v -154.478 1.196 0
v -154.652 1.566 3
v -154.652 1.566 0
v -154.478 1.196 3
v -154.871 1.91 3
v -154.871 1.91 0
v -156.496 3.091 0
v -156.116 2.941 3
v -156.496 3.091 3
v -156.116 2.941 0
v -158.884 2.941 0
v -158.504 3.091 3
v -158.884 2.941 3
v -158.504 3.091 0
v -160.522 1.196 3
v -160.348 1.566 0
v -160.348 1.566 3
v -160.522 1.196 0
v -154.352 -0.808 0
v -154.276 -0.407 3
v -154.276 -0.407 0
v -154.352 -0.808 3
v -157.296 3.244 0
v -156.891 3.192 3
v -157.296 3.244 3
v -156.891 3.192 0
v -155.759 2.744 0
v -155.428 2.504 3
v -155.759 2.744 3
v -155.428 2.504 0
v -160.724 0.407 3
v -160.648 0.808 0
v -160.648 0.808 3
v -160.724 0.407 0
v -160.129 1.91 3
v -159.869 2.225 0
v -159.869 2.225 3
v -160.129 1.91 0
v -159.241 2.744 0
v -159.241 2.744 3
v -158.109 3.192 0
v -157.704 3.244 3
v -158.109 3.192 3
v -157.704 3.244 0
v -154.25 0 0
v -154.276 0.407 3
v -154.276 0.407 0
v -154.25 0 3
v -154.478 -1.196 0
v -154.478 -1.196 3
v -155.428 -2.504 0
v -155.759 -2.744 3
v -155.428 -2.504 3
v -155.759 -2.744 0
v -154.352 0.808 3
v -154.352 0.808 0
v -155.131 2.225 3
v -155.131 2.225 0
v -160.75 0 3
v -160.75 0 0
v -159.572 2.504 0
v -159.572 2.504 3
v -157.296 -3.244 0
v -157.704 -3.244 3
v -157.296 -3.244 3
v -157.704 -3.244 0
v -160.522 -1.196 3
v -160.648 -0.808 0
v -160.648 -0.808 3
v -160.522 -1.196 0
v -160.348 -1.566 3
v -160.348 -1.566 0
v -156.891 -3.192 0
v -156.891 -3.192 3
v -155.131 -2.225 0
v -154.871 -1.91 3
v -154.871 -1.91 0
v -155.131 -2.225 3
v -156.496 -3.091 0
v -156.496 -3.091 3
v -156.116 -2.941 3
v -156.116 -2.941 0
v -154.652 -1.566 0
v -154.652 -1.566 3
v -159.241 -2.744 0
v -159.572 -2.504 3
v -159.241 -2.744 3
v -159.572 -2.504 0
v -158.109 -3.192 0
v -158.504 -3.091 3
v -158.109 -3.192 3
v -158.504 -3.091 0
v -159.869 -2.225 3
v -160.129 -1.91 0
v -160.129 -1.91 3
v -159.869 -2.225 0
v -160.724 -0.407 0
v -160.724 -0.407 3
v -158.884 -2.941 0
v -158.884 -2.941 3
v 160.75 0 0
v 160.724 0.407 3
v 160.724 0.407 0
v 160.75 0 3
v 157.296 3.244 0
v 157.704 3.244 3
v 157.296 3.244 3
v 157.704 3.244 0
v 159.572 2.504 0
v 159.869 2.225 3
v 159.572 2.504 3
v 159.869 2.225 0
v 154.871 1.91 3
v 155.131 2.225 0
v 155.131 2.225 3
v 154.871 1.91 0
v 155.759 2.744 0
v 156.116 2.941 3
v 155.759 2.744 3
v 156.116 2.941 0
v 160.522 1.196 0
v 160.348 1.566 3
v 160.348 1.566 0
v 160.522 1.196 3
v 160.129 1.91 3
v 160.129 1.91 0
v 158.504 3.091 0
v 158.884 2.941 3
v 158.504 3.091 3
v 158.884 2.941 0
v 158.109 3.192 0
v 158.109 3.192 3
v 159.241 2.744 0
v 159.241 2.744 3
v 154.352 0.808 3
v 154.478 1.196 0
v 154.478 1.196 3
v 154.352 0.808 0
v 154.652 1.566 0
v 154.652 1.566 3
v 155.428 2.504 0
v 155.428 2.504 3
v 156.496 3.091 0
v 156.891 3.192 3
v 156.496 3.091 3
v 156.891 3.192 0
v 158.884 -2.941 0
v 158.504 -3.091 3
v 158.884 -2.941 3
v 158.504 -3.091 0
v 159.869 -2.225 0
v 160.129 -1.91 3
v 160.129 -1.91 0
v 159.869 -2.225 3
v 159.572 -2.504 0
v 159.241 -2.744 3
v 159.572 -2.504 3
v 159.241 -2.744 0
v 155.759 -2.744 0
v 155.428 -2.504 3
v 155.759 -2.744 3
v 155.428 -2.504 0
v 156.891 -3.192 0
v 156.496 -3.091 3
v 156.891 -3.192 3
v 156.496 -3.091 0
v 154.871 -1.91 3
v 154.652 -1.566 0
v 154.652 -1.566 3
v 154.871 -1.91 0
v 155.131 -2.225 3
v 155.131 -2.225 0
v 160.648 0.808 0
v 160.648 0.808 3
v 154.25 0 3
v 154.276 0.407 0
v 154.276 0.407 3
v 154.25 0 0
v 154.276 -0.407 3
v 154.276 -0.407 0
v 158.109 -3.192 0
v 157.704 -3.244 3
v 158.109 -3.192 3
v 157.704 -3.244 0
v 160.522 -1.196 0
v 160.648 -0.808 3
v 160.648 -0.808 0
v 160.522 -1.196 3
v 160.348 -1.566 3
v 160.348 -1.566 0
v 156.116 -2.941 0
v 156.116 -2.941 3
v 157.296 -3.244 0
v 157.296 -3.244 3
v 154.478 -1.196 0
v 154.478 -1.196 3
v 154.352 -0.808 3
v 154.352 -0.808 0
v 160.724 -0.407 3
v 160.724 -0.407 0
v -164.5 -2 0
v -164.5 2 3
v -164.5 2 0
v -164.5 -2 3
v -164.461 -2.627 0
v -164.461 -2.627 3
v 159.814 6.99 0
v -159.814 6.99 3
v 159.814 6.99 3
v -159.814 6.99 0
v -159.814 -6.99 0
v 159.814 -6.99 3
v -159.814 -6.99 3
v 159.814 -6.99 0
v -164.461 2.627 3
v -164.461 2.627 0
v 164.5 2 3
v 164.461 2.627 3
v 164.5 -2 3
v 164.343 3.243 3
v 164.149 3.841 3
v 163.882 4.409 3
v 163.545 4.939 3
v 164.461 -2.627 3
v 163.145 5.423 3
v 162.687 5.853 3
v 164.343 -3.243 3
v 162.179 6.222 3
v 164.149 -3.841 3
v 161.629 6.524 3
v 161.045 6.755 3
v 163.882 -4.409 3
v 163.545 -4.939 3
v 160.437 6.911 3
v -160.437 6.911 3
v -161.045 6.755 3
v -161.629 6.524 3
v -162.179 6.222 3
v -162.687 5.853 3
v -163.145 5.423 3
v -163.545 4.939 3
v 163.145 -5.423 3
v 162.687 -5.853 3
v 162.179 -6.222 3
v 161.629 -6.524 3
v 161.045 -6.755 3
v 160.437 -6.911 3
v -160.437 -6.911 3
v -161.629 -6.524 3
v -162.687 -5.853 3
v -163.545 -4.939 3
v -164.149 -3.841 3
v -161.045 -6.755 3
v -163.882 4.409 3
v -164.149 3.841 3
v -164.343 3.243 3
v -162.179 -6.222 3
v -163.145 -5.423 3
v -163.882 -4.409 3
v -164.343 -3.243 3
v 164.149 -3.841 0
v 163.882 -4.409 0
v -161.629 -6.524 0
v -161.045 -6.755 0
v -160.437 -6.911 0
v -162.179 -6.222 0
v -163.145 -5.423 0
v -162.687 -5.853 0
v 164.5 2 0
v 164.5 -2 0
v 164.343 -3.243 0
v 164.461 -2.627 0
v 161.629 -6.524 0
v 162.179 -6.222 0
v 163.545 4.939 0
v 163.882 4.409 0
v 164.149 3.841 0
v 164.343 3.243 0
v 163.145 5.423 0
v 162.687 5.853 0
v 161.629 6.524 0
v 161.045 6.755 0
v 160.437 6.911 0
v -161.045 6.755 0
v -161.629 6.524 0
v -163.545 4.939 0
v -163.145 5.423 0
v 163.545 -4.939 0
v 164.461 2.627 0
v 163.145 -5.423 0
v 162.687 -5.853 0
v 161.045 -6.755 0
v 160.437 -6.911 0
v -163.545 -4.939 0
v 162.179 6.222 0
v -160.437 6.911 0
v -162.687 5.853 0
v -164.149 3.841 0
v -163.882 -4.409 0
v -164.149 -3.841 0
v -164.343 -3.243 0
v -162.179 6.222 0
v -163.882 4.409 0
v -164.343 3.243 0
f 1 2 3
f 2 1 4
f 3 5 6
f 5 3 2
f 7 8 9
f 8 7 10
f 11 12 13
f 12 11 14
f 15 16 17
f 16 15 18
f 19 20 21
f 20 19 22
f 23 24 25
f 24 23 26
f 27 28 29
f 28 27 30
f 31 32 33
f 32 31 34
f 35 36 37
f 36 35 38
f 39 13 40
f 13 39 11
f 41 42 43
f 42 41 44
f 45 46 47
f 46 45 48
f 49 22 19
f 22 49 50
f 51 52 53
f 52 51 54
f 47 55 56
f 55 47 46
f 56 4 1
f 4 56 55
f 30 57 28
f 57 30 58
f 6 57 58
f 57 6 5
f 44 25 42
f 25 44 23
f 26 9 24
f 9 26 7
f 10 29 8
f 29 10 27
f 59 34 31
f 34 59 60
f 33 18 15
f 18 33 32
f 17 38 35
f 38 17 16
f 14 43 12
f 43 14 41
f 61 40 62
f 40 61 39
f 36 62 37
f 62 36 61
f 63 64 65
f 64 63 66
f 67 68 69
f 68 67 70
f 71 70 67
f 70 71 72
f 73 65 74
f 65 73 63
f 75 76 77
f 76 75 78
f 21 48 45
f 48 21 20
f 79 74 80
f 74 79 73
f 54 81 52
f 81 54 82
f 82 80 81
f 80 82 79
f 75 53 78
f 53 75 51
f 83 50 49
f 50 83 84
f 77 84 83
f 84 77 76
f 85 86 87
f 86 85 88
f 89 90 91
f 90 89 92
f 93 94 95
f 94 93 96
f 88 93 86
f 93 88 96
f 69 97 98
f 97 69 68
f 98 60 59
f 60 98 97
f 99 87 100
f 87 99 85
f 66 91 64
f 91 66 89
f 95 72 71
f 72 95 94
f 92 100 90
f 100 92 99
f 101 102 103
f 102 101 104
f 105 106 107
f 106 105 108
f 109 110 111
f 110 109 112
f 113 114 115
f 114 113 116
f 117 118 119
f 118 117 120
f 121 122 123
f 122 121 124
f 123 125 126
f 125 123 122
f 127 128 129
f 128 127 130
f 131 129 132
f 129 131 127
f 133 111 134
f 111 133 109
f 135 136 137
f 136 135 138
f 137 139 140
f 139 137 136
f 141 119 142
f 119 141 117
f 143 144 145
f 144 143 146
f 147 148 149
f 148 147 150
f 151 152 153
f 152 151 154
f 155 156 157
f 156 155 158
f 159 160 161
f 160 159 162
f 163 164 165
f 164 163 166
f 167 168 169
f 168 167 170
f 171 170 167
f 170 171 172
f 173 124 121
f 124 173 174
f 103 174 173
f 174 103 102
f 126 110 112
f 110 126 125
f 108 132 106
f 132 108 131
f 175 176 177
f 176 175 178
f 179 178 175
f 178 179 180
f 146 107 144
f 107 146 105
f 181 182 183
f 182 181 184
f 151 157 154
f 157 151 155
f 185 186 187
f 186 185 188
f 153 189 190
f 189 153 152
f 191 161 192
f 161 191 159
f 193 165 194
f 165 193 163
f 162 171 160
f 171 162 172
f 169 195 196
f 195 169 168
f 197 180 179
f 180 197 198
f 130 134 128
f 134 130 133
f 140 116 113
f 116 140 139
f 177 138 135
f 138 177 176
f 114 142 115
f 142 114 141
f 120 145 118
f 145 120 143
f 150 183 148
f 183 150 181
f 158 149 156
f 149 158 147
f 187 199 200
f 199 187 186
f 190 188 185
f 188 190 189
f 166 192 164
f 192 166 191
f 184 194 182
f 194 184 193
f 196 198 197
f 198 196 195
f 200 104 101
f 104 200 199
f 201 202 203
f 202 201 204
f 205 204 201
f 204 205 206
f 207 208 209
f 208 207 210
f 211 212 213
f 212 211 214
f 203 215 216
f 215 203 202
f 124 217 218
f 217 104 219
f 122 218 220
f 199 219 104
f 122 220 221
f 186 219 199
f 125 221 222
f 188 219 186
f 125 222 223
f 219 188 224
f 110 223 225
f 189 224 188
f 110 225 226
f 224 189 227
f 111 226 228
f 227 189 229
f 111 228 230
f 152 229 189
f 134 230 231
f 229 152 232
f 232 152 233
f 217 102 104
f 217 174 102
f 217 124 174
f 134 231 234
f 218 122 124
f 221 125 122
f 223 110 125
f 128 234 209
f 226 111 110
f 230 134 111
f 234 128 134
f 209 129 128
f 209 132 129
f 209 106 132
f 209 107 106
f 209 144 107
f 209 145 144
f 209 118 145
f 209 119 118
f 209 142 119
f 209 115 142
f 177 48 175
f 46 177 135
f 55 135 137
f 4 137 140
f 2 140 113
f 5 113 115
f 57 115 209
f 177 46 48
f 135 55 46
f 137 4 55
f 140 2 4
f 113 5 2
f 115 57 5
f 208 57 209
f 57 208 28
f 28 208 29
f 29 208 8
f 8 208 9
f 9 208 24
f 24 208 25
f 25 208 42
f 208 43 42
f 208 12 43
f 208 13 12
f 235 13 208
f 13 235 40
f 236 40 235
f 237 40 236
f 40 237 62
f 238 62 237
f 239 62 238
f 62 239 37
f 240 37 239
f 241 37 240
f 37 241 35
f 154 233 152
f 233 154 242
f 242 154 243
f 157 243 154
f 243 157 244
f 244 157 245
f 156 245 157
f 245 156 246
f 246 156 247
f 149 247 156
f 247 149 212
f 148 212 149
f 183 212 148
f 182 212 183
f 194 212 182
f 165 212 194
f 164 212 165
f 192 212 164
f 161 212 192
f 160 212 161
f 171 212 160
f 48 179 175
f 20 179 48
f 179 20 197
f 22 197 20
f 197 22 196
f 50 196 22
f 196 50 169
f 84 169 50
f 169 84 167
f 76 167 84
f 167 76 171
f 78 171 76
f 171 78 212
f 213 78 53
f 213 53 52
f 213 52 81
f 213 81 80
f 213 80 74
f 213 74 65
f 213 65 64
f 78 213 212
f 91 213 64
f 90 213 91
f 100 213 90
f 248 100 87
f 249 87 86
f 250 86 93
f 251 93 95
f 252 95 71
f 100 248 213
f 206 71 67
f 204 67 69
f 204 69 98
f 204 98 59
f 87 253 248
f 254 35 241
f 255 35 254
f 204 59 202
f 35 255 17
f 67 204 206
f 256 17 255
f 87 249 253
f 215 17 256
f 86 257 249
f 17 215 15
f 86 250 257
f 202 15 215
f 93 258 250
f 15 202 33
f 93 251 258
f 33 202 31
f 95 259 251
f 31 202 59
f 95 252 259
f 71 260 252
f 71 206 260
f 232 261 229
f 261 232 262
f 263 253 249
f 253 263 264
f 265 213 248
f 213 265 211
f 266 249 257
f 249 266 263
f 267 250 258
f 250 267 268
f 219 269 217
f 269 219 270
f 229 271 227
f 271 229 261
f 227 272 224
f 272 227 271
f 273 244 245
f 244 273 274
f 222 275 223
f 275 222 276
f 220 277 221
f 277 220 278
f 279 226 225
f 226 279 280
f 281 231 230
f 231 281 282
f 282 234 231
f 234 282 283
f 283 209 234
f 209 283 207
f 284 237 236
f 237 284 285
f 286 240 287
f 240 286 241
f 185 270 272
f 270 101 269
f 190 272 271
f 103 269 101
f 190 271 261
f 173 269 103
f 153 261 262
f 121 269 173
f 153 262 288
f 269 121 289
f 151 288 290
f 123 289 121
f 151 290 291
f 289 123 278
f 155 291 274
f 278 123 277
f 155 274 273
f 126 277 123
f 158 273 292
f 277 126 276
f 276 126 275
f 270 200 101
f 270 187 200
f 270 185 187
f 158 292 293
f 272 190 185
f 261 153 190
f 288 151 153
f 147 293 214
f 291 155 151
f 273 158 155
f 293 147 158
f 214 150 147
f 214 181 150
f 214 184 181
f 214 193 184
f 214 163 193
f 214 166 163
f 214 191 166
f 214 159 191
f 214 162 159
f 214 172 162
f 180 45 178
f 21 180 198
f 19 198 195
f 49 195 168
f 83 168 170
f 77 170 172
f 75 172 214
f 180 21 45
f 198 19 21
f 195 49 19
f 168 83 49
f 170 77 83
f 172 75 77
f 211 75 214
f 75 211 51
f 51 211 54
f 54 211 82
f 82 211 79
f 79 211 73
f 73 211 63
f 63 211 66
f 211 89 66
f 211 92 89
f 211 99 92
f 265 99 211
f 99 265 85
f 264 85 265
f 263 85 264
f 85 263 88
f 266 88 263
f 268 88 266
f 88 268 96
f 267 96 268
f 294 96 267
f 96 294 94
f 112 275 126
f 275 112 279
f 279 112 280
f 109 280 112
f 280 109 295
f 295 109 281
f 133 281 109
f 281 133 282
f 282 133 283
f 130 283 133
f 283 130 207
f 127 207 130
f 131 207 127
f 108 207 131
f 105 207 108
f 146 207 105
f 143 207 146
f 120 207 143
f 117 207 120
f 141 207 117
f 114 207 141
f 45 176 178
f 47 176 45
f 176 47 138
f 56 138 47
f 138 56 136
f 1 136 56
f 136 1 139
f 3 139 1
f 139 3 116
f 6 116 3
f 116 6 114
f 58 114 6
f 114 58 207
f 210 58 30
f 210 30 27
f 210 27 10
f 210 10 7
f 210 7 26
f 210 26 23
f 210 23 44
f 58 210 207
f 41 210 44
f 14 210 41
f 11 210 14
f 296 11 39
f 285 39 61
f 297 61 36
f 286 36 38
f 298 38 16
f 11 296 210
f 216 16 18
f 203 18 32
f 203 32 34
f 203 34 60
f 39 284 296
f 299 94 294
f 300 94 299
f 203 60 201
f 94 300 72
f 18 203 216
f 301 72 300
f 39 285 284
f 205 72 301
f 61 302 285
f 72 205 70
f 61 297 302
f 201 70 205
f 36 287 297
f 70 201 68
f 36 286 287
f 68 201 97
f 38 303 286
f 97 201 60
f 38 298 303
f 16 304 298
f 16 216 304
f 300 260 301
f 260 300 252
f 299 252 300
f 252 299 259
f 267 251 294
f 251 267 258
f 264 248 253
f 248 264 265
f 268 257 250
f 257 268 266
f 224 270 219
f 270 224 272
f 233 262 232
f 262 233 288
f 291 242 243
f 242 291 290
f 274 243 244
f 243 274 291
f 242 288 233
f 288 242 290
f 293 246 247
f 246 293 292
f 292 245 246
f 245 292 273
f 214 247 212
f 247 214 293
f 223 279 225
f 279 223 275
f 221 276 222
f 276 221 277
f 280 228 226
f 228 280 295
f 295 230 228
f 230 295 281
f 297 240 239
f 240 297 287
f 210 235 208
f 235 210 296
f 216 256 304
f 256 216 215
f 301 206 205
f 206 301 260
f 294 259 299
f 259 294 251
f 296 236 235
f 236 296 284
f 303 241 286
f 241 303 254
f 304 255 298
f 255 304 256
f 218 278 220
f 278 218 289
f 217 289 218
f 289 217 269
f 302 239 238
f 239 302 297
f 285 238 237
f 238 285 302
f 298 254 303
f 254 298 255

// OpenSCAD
$fn = 50;


difference() {
	union() {
		hull() {
			translate(v = [-159.5000000000, 2.0000000000, 0]) {
				cylinder(h = 3, r = 5);
			}
			translate(v = [159.5000000000, 2.0000000000, 0]) {
				cylinder(h = 3, r = 5);
			}
			translate(v = [-159.5000000000, -2.0000000000, 0]) {
				cylinder(h = 3, r = 5);
			}
			translate(v = [159.5000000000, -2.0000000000, 0]) {
				cylinder(h = 3, r = 5);
			}
		}
	}
	union() {
		translate(v = [-157.5000000000, 0.0000000000, -100.0000000000]) {
			cylinder(h = 200, r = 3.2500000000);
		}
		translate(v = [-157.5000000000, 0.0000000000, -100.0000000000]) {
			cylinder(h = 200, r = 3.2500000000);
		}
		translate(v = [157.5000000000, 0.0000000000, -100.0000000000]) {
			cylinder(h = 200, r = 3.2500000000);
		}
		translate(v = [157.5000000000, 0.0000000000, -100.0000000000]) {
			cylinder(h = 200, r = 3.2500000000);
		}
	}
}
